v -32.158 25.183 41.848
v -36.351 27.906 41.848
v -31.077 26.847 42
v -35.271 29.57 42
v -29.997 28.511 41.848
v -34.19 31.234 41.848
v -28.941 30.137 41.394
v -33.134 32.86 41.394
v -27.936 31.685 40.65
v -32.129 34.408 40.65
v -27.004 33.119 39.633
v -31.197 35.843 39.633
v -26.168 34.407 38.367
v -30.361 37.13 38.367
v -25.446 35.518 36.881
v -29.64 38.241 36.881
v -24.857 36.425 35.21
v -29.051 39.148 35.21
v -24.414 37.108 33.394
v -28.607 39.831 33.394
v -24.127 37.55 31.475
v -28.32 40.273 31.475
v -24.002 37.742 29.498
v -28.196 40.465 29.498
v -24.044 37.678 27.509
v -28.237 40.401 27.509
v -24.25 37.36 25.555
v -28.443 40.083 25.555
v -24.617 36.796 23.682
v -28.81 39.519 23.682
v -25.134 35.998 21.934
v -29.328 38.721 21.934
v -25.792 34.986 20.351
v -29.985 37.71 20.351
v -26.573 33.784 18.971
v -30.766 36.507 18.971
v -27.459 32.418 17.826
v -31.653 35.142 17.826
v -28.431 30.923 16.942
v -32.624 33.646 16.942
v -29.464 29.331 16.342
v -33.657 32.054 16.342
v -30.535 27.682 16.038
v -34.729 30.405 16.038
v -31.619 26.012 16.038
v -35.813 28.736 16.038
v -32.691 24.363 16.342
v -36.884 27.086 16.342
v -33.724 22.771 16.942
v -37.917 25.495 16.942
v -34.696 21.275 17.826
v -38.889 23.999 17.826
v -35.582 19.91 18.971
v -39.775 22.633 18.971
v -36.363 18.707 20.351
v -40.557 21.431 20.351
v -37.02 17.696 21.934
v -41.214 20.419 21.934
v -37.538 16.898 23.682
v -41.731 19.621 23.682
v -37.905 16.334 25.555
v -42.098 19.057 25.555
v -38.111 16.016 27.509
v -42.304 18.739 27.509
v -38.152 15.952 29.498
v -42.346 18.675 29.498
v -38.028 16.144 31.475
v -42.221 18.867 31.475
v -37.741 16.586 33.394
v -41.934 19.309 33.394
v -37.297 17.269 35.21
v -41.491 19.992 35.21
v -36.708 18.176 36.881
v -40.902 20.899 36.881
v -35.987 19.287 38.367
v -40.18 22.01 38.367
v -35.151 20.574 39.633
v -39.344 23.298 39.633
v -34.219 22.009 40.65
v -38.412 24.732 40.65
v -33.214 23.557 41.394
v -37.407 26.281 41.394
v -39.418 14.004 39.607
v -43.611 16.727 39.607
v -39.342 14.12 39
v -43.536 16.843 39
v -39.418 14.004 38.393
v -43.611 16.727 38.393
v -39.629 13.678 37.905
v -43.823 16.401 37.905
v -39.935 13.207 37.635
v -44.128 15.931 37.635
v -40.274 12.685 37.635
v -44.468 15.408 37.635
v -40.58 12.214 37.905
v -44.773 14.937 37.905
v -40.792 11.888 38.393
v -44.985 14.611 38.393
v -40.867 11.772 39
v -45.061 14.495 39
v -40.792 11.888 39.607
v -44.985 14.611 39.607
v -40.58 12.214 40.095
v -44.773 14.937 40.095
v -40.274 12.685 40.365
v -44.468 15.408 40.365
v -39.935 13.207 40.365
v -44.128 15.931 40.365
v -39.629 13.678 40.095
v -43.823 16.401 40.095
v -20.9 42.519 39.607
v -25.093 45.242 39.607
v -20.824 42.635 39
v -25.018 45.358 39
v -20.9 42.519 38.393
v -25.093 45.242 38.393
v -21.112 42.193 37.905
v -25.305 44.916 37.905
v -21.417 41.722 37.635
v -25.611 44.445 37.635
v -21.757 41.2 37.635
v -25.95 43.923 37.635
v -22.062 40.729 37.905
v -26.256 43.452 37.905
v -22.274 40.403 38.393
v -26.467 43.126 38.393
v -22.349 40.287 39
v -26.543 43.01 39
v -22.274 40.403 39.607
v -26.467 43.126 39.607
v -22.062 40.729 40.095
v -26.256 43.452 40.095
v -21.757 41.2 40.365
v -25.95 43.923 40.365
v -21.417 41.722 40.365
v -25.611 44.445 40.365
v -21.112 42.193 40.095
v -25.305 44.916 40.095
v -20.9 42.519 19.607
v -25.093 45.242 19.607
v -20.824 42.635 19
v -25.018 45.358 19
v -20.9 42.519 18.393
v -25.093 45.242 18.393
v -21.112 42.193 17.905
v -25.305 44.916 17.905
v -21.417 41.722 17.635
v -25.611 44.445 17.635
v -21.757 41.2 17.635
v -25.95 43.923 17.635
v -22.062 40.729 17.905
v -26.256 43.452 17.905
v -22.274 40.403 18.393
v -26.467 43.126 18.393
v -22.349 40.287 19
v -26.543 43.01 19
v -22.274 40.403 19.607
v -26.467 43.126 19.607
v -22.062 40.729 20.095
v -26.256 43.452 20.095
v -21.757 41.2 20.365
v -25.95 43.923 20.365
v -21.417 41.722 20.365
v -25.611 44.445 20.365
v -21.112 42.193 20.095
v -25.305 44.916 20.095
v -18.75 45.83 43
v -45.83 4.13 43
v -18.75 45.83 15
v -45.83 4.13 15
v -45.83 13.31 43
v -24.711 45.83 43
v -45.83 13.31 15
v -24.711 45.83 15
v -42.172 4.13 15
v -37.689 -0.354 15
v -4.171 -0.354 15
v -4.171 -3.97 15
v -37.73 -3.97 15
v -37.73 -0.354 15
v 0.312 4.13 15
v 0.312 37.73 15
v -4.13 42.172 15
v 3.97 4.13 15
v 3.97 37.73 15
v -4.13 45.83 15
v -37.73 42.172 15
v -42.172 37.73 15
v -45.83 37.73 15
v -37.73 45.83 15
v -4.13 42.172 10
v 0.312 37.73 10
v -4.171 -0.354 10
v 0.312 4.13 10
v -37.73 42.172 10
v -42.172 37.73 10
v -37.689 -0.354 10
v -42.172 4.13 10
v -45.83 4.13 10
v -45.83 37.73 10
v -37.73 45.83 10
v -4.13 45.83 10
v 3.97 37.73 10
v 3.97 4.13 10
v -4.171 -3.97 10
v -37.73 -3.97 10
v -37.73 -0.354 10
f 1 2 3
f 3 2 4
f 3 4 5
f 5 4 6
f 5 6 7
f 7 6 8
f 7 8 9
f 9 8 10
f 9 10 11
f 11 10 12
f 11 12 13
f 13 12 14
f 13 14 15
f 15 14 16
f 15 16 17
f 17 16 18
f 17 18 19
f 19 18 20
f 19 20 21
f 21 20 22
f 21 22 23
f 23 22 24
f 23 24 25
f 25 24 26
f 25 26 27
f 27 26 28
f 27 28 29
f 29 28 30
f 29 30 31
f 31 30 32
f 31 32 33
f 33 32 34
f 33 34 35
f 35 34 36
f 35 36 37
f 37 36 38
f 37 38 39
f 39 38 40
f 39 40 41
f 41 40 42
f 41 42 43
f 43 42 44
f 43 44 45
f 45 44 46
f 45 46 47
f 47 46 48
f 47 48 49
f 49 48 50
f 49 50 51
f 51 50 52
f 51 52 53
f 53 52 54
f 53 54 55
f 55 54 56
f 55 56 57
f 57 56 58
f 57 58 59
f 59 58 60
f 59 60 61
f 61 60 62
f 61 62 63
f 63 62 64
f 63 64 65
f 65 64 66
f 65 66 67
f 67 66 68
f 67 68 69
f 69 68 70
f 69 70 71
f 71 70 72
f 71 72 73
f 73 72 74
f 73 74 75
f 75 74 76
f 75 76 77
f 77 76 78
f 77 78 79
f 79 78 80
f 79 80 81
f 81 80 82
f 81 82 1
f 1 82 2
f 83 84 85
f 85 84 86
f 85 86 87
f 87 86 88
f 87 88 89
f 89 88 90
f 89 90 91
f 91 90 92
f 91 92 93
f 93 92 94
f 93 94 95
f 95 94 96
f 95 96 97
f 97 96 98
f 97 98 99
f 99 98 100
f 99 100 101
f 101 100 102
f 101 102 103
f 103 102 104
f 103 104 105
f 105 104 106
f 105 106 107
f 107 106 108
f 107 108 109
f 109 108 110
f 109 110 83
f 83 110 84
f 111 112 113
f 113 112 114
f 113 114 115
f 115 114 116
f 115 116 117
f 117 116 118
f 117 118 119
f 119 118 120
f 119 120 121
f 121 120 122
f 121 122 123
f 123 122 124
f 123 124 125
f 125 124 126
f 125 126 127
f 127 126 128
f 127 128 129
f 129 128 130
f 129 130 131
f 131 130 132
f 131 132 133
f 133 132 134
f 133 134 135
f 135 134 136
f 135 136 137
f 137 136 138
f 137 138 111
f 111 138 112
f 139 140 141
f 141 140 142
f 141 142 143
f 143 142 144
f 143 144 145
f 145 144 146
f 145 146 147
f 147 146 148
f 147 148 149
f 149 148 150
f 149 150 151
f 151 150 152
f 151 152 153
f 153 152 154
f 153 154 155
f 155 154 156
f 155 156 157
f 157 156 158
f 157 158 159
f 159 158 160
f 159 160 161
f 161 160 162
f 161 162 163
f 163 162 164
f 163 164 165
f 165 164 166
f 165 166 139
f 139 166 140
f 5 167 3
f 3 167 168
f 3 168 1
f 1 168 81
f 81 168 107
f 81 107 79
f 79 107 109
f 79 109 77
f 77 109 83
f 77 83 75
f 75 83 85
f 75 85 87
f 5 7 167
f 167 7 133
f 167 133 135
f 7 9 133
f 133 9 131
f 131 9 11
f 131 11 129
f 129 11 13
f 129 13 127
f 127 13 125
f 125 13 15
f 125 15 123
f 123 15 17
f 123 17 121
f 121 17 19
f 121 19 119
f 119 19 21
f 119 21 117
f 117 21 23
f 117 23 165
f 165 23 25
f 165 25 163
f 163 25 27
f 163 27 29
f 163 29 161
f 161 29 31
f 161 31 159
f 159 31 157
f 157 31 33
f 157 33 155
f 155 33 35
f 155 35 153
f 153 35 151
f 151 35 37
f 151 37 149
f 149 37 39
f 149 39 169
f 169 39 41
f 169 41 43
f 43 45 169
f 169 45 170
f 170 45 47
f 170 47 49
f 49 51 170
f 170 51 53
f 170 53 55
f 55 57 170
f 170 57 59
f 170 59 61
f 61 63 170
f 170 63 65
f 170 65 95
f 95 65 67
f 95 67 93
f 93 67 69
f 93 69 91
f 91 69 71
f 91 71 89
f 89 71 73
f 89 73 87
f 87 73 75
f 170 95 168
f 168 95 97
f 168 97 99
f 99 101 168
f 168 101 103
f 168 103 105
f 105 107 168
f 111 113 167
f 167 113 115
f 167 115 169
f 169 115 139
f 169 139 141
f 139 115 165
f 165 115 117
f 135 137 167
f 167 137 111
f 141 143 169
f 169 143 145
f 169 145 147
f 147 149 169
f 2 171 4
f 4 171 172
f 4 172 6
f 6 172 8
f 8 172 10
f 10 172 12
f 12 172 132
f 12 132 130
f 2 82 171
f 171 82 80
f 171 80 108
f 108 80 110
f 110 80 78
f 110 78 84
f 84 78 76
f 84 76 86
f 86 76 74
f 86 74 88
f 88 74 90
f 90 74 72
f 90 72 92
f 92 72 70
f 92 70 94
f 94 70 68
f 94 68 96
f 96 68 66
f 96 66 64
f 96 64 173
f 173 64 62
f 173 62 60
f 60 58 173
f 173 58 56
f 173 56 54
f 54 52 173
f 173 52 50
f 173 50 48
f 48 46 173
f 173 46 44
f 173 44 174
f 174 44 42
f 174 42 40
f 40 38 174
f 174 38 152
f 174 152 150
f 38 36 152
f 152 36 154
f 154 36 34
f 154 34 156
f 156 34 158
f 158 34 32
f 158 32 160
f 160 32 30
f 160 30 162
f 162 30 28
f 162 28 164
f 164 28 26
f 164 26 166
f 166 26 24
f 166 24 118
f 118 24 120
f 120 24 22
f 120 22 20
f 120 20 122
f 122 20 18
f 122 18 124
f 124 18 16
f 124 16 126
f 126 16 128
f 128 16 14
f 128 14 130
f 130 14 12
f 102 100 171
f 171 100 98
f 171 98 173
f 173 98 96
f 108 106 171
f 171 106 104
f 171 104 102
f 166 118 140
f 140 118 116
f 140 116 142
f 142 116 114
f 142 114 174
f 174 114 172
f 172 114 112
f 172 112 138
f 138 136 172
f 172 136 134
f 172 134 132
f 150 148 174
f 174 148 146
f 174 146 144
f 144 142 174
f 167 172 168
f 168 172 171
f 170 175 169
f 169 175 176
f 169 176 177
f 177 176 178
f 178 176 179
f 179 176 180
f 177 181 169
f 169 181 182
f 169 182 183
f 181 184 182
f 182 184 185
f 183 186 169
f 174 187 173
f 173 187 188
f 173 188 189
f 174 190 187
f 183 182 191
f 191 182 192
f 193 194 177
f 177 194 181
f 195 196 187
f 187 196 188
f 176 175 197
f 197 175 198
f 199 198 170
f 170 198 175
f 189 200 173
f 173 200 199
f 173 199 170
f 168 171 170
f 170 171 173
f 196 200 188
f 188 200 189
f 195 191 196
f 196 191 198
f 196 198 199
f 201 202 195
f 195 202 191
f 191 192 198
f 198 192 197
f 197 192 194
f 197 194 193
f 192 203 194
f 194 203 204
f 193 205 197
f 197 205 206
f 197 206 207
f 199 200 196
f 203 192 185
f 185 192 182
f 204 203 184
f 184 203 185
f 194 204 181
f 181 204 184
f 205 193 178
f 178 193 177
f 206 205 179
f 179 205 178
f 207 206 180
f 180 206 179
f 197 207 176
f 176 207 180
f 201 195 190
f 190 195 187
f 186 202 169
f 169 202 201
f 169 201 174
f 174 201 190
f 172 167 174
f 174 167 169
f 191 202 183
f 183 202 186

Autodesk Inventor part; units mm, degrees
ref_plane "Work Plane1" through (0, 0, 10) normal (0, 0, 1) x (1, 0, 0)
sketch "Sketch1" plane through (0, 0, 10) normal (0, 0, 1) x (1, 0, 0)
  line L0 (-4.0299, -0.3538) -> (-2.2322, 1.4439) construction
  arc A0 (-1.4439, 2.2322) -> (-2.2322, 1.4439) centre (-0.9299, 0.9299) ccw construction
  line L1 (-1.4439, 2.2322) -> (0.3538, 4.0299) construction
  line L2 (-37.8299, 42.8299) -> (-37.8299, 37.8299) construction
  line L3 (-37.8299, 37.8299) -> (-42.9208, 37.8299) construction
  line L4 (-37.8299, 42.2137) -> (-37.8299, 45.8299) construction
  line L5 (-37.8299, 45.8299) -> (-4.0299, 45.8299) construction
  line L6 (-4.0299, 45.8299) -> (-4.0299, 42.2137) construction
  line L7 (-4.0299, 4.0299) -> (0.3538, 4.0299) projected
  circle A1 centre (-20.9299, 20.9299) radius 17.5 projected
  line L8 (-20.9299, 58.9723) -> (17.1124, 20.9299) construction
  line L9 (17.1124, 20.9299) -> (-20.9299, -17.1124) construction
  line L10 (-20.9299, -17.1124) -> (-58.9723, 20.9299) construction
  line L11 (-58.9723, 20.9299) -> (-20.9299, 58.9723) construction
  line L12 (-20.9299, 58.9723) -> (-20.9299, -17.1124) construction
  line L13 (17.1124, 20.9299) -> (-58.9723, 20.9299) construction
  line L14 (-20.9299, 58.9723) -> (32.8701, 58.9723) construction
  line L15 (-43.4299, 43.4299) -> (1.5701, 43.4299) construction
  line L16 (1.5701, 43.4299) -> (1.5701, -1.5701) construction
  line L17 (1.5701, -1.5701) -> (-43.4299, -1.5701) construction
  line L18 (-43.4299, -1.5701) -> (-43.4299, 43.4299) construction
  line L19 (-43.4299, 43.4299) -> (1.5701, -1.5701) construction
  line L20 (1.5701, 43.4299) -> (-43.4299, -1.5701) construction
  line L21 (-43.4299, 5.3876) -> (-43.4299, 36.4723)
  line L22 (-43.4299, 36.4723) -> (-36.4723, 43.4299)
  line L23 (-36.4723, 43.4299) -> (-5.3876, 43.4299)
  line L24 (-5.3876, 43.4299) -> (1.5701, 36.4723)
  line L25 (1.5701, 36.4723) -> (1.5701, 5.3876)
  line L26 (1.5701, 5.3876) -> (-5.3876, -1.5701)
  line L27 (-5.3876, -1.5701) -> (-36.4723, -1.5701)
  line L28 (-36.4723, -1.5701) -> (-43.4299, 5.3876)
  line L29 (-4.0299, 42.2137) -> (-37.8299, 42.2137) projected
  line L30 (-4.0299, -0.3538) -> (-4.0299, 4.0299) projected
  circle A2 centre (-20.9299, 20.9299) radius 1.4
  line L31 (-10.9299, 10.9299) -> (-30.9299, 10.9299) construction
  line L32 (-30.9299, 10.9299) -> (-30.9299, 30.9299) construction
  line L33 (-30.9299, 30.9299) -> (-10.9299, 30.9299) construction
  line L34 (-10.9299, 30.9299) -> (-10.9299, 10.9299) construction
  line L35 (-10.9299, 10.9299) -> (-30.9299, 30.9299) construction
  line L36 (-30.9299, 10.9299) -> (-10.9299, 30.9299) construction
  circle A3 centre (-30.9299, 30.9299) radius 1.4
  circle A4 centre (-30.9299, 10.9299) radius 1.4
  circle A5 centre (-10.9299, 10.9299) radius 1.4
  line L37 (-45.8299, 37.8299) -> (-42.0723, 37.8299) construction
  line L38 (-42.1723, 37.7299) -> (-45.8299, 37.7299)
  line L39 (-45.8299, 37.7299) -> (-45.8299, 4.1299)
  line L40 (-45.8299, 4.1299) -> (-42.1723, 4.1299)
  line L41 (-42.1723, 4.1299) -> (-42.1723, 37.7299)
  line L42 (-45.8299, 4.0299) -> (-42.0723, 4.0299) construction
  line L43 (-45.8299, 37.8299) -> (-42.0723, 37.8299) projected
  line L44 (-37.7299, 45.8299) -> (-4.1299, 45.8299)
  line L45 (-4.1299, 45.8299) -> (-4.1299, 42.1723)
  line L46 (-4.1299, 42.1723) -> (-37.7299, 42.1723)
  line L47 (-37.7299, 42.1723) -> (-37.7299, 45.8299)
  line L48 (0.4701, 37.8299) -> (0.4701, 4.0299) construction
  line L49 (0.4701, 4.0299) -> (3.9701, 4.0299) construction
  line L50 (3.9701, 37.8299) -> (3.9701, 4.0299) construction
  line L51 (0.4701, 37.8299) -> (3.9701, 37.8299) construction
  line L52 (-45.8299, -3.9701) -> (-4.0299, -3.9701) construction
  line L53 (0.3124, 37.7299) -> (3.9701, 37.7299)
  line L54 (3.9701, 37.7299) -> (3.9701, 4.1299)
  line L55 (3.9701, 4.1299) -> (0.3124, 4.1299)
  line L56 (0.3124, 4.1299) -> (0.3124, 37.7299)
  line L57 (-4.1713, -0.3538) -> (-37.7299, -0.3538)
  line L58 (-37.7299, -0.3538) -> (-37.7299, -3.9701)
  line L59 (-37.7299, -3.9701) -> (-4.1713, -3.9701)
  line L60 (-4.1713, -3.9701) -> (-4.1713, -0.3538)
  point P0 (-37.8299, 4.0299)
  dimension "d18" = 53.8
  dimension "d19" = 45
  dimension "d20" = 53.8
  dimension "d21" = 45
  dimension "d22" = 45
  dimension "d30" = 20
  dimension "d31" = 20
  dimension "d32" = 2.8
  dimension "d33" = 2.8
  dimension "d34" = 2.8
  dimension "d35" = 2.8
  dimension "d36" = 0.1
  dimension "d37" = 0.1
  dimension "d38" = 0.1
  dimension "d39" = 0.1
extrude "Extrusion1" add sketch "Sketch1" along normal blind 5 contours L30 L26 L57 L28 L41 L22 L46 L24 L56 L7 | L7 L26 L30 | L56 L24 L25 L26 | L26 L25 L24 L53 L54 L55 | L60 L59 L58 L57 L28 L27 L26 | L26 L27 L28 L57 | L46 L22 L29 L24 | L24 L29 L45 | L40 L39 L38 L22 L21 L28 | L28 L21 L22 L41 | L29 L22 L23 L24 | L24 L23 L22 L29 L47 L44 L45 | L47 L29 L22 | A1 | A2 | A3 | A4 | A5
sketch "Sketch4" plane through (0, 0, 15) normal (0, 0, 1) x (1, 0, 0)
  line L0 (-37.7299, 42.1723) -> (-42.1723, 37.7299) projected
  line L1 (-42.1723, 37.7299) -> (-45.8299, 37.7299) projected
  line L2 (-45.8299, 37.7299) -> (-45.8299, 4.1299) projected
  line L3 (-45.8299, 4.1299) -> (-42.1723, 4.1299) projected
  line L4 (-42.1723, 4.1299) -> (-37.6885, -0.3538) projected
  line L5 (-37.6885, -0.3538) -> (-37.7299, -0.3538) projected
  line L6 (-37.7299, -0.3538) -> (-37.7299, -3.9701) projected
  line L7 (-37.7299, -3.9701) -> (-4.1713, -3.9701) projected
  line L8 (-4.1713, -3.9701) -> (-4.1713, -0.3538) projected
  line L9 (-4.1713, -0.3538) -> (0.3124, 4.1299) projected
  line L10 (0.3124, 4.1299) -> (3.9701, 4.1299) projected
  line L11 (3.9701, 4.1299) -> (3.9701, 37.7299) projected
  line L12 (3.9701, 37.7299) -> (0.3124, 37.7299) projected
  line L13 (0.3124, 37.7299) -> (-4.1299, 42.1723) projected
  line L14 (-4.1299, 42.1723) -> (-4.1299, 45.8299) projected
  line L15 (-4.1299, 45.8299) -> (-37.7299, 45.8299) projected
  line L16 (-37.7299, 45.8299) -> (-37.7299, 42.1723) projected
  line L17 (-45.8299, 37.7299) -> (-45.8299, 4.1299) projected
  line L18 (-45.8299, 4.1299) -> (-18.7496, 45.8299)
  line L19 (-45.8299, 4.1299) -> (3.8916, 4.1299) construction
  line L20 (-18.7496, 45.8299) -> (-24.7114, 45.8299)
  line L21 (-4.1299, 45.8299) -> (-37.7299, 45.8299) projected
  line L22 (-24.7114, 45.8299) -> (-45.8299, 13.3103)
  line L23 (-45.8299, 4.1299) -> (-45.8299, 13.3103)
  circle A0 centre (-40.9299, 0.9299) radius 1.1933 projected
  circle A1 centre (-0.9299, 40.9299) radius 1.4 projected
  line L24 (-40.9299, 0.9299) -> (-0.9299, 40.9299)
  line L25 (0.3124, 37.7299) -> (-4.1299, 42.1723) projected
  point P0 (0, 0)
  dimension "d40" = 57
  dimension "d59" = 5
extrude "Extrusion4" add sketch "Sketch4" along normal blind 28 contours L15 L18 L2 L22
sketch "Sketch5" plane through (-45.8299, 13.3103, 15) normal (-0.8387, 0.5446, 0) x (-0.5446, -0.8387, 0)
  line L0 (0, 0) -> (-38.7752, 0) projected
  line L1 (0, 0) -> (0, 28) projected
  line L2 (-38.7752, 28) -> (0, 28) projected
  line L3 (-38.7752, 0) -> (-38.7752, 28) projected
  circle A0 centre (-19.3876, 8.6124) radius 19.3876
  line L4 (-2.8127, 24) -> (-36.8127, 24) construction
  line L5 (-36.8127, 24) -> (-36.8127, 4) construction
  line L6 (-36.8127, 4) -> (-2.8127, 4) construction
  line L7 (-2.8127, 4) -> (-2.8127, 24) construction
  line L8 (-2.8127, 24) -> (-36.8127, 4) construction
  line L9 (-36.8127, 24) -> (-2.8127, 4) construction
  point P0 (-13.7978, -15)
  point P1 (-19.8127, 14)
  dimension "d44" = 34
  dimension "d45" = 20
hole "Hole1" at (-25.7803, 44.1841, 39) at (-25.7803, 44.1841, 19) at (-44.298, 15.6693, 39) at (-35.0391, 29.9267, 29) direction (0.8387, -0.5446, 0) diameter 2.8 depth 12
ref_plane "Work Plane3" through (3.9701, 45.8299, 26) normal (1, 0, 0) x (0, -1, 0)
ref_plane "Work Plane4" through (-34.8055, 8.3289, 16.6138) normal (0.7071, -0.7071, 0) x (0.7071, 0.7071, 0)
sketch "Sketch9" plane through (-45.8299, 13.3103, 15) normal (-0.8387, 0.5446, 0) x (0, 0, 1)
  line L0 (28, 38.7752) -> (28, 0) projected
  line L1 (0, 17.4316) -> (0, 19.4237) projected
  line L2 (28, 19.3876) -> (0, 19.3876) construction
  line L3 (0, 0) -> (0, 38.7752) projected
  line L4 (0, 0) -> (28, 0) projected
  line L5 (0, 38.7752) -> (28, 38.7752) projected
  line L6 (14, 38.7752) -> (14, 0) construction
  circle A0 centre (14, 19.3876) radius 13
  point P0 (-15, 13.7978)
  dimension "d60" = 26
extrude "Extrusion7" cut sketch "Sketch9" against normal up to surface (5 mm away) contours A0
properties part number "20_POL_cube_insert_Brewster_Angle_Kinematic_Mount_base_57_degrees"
